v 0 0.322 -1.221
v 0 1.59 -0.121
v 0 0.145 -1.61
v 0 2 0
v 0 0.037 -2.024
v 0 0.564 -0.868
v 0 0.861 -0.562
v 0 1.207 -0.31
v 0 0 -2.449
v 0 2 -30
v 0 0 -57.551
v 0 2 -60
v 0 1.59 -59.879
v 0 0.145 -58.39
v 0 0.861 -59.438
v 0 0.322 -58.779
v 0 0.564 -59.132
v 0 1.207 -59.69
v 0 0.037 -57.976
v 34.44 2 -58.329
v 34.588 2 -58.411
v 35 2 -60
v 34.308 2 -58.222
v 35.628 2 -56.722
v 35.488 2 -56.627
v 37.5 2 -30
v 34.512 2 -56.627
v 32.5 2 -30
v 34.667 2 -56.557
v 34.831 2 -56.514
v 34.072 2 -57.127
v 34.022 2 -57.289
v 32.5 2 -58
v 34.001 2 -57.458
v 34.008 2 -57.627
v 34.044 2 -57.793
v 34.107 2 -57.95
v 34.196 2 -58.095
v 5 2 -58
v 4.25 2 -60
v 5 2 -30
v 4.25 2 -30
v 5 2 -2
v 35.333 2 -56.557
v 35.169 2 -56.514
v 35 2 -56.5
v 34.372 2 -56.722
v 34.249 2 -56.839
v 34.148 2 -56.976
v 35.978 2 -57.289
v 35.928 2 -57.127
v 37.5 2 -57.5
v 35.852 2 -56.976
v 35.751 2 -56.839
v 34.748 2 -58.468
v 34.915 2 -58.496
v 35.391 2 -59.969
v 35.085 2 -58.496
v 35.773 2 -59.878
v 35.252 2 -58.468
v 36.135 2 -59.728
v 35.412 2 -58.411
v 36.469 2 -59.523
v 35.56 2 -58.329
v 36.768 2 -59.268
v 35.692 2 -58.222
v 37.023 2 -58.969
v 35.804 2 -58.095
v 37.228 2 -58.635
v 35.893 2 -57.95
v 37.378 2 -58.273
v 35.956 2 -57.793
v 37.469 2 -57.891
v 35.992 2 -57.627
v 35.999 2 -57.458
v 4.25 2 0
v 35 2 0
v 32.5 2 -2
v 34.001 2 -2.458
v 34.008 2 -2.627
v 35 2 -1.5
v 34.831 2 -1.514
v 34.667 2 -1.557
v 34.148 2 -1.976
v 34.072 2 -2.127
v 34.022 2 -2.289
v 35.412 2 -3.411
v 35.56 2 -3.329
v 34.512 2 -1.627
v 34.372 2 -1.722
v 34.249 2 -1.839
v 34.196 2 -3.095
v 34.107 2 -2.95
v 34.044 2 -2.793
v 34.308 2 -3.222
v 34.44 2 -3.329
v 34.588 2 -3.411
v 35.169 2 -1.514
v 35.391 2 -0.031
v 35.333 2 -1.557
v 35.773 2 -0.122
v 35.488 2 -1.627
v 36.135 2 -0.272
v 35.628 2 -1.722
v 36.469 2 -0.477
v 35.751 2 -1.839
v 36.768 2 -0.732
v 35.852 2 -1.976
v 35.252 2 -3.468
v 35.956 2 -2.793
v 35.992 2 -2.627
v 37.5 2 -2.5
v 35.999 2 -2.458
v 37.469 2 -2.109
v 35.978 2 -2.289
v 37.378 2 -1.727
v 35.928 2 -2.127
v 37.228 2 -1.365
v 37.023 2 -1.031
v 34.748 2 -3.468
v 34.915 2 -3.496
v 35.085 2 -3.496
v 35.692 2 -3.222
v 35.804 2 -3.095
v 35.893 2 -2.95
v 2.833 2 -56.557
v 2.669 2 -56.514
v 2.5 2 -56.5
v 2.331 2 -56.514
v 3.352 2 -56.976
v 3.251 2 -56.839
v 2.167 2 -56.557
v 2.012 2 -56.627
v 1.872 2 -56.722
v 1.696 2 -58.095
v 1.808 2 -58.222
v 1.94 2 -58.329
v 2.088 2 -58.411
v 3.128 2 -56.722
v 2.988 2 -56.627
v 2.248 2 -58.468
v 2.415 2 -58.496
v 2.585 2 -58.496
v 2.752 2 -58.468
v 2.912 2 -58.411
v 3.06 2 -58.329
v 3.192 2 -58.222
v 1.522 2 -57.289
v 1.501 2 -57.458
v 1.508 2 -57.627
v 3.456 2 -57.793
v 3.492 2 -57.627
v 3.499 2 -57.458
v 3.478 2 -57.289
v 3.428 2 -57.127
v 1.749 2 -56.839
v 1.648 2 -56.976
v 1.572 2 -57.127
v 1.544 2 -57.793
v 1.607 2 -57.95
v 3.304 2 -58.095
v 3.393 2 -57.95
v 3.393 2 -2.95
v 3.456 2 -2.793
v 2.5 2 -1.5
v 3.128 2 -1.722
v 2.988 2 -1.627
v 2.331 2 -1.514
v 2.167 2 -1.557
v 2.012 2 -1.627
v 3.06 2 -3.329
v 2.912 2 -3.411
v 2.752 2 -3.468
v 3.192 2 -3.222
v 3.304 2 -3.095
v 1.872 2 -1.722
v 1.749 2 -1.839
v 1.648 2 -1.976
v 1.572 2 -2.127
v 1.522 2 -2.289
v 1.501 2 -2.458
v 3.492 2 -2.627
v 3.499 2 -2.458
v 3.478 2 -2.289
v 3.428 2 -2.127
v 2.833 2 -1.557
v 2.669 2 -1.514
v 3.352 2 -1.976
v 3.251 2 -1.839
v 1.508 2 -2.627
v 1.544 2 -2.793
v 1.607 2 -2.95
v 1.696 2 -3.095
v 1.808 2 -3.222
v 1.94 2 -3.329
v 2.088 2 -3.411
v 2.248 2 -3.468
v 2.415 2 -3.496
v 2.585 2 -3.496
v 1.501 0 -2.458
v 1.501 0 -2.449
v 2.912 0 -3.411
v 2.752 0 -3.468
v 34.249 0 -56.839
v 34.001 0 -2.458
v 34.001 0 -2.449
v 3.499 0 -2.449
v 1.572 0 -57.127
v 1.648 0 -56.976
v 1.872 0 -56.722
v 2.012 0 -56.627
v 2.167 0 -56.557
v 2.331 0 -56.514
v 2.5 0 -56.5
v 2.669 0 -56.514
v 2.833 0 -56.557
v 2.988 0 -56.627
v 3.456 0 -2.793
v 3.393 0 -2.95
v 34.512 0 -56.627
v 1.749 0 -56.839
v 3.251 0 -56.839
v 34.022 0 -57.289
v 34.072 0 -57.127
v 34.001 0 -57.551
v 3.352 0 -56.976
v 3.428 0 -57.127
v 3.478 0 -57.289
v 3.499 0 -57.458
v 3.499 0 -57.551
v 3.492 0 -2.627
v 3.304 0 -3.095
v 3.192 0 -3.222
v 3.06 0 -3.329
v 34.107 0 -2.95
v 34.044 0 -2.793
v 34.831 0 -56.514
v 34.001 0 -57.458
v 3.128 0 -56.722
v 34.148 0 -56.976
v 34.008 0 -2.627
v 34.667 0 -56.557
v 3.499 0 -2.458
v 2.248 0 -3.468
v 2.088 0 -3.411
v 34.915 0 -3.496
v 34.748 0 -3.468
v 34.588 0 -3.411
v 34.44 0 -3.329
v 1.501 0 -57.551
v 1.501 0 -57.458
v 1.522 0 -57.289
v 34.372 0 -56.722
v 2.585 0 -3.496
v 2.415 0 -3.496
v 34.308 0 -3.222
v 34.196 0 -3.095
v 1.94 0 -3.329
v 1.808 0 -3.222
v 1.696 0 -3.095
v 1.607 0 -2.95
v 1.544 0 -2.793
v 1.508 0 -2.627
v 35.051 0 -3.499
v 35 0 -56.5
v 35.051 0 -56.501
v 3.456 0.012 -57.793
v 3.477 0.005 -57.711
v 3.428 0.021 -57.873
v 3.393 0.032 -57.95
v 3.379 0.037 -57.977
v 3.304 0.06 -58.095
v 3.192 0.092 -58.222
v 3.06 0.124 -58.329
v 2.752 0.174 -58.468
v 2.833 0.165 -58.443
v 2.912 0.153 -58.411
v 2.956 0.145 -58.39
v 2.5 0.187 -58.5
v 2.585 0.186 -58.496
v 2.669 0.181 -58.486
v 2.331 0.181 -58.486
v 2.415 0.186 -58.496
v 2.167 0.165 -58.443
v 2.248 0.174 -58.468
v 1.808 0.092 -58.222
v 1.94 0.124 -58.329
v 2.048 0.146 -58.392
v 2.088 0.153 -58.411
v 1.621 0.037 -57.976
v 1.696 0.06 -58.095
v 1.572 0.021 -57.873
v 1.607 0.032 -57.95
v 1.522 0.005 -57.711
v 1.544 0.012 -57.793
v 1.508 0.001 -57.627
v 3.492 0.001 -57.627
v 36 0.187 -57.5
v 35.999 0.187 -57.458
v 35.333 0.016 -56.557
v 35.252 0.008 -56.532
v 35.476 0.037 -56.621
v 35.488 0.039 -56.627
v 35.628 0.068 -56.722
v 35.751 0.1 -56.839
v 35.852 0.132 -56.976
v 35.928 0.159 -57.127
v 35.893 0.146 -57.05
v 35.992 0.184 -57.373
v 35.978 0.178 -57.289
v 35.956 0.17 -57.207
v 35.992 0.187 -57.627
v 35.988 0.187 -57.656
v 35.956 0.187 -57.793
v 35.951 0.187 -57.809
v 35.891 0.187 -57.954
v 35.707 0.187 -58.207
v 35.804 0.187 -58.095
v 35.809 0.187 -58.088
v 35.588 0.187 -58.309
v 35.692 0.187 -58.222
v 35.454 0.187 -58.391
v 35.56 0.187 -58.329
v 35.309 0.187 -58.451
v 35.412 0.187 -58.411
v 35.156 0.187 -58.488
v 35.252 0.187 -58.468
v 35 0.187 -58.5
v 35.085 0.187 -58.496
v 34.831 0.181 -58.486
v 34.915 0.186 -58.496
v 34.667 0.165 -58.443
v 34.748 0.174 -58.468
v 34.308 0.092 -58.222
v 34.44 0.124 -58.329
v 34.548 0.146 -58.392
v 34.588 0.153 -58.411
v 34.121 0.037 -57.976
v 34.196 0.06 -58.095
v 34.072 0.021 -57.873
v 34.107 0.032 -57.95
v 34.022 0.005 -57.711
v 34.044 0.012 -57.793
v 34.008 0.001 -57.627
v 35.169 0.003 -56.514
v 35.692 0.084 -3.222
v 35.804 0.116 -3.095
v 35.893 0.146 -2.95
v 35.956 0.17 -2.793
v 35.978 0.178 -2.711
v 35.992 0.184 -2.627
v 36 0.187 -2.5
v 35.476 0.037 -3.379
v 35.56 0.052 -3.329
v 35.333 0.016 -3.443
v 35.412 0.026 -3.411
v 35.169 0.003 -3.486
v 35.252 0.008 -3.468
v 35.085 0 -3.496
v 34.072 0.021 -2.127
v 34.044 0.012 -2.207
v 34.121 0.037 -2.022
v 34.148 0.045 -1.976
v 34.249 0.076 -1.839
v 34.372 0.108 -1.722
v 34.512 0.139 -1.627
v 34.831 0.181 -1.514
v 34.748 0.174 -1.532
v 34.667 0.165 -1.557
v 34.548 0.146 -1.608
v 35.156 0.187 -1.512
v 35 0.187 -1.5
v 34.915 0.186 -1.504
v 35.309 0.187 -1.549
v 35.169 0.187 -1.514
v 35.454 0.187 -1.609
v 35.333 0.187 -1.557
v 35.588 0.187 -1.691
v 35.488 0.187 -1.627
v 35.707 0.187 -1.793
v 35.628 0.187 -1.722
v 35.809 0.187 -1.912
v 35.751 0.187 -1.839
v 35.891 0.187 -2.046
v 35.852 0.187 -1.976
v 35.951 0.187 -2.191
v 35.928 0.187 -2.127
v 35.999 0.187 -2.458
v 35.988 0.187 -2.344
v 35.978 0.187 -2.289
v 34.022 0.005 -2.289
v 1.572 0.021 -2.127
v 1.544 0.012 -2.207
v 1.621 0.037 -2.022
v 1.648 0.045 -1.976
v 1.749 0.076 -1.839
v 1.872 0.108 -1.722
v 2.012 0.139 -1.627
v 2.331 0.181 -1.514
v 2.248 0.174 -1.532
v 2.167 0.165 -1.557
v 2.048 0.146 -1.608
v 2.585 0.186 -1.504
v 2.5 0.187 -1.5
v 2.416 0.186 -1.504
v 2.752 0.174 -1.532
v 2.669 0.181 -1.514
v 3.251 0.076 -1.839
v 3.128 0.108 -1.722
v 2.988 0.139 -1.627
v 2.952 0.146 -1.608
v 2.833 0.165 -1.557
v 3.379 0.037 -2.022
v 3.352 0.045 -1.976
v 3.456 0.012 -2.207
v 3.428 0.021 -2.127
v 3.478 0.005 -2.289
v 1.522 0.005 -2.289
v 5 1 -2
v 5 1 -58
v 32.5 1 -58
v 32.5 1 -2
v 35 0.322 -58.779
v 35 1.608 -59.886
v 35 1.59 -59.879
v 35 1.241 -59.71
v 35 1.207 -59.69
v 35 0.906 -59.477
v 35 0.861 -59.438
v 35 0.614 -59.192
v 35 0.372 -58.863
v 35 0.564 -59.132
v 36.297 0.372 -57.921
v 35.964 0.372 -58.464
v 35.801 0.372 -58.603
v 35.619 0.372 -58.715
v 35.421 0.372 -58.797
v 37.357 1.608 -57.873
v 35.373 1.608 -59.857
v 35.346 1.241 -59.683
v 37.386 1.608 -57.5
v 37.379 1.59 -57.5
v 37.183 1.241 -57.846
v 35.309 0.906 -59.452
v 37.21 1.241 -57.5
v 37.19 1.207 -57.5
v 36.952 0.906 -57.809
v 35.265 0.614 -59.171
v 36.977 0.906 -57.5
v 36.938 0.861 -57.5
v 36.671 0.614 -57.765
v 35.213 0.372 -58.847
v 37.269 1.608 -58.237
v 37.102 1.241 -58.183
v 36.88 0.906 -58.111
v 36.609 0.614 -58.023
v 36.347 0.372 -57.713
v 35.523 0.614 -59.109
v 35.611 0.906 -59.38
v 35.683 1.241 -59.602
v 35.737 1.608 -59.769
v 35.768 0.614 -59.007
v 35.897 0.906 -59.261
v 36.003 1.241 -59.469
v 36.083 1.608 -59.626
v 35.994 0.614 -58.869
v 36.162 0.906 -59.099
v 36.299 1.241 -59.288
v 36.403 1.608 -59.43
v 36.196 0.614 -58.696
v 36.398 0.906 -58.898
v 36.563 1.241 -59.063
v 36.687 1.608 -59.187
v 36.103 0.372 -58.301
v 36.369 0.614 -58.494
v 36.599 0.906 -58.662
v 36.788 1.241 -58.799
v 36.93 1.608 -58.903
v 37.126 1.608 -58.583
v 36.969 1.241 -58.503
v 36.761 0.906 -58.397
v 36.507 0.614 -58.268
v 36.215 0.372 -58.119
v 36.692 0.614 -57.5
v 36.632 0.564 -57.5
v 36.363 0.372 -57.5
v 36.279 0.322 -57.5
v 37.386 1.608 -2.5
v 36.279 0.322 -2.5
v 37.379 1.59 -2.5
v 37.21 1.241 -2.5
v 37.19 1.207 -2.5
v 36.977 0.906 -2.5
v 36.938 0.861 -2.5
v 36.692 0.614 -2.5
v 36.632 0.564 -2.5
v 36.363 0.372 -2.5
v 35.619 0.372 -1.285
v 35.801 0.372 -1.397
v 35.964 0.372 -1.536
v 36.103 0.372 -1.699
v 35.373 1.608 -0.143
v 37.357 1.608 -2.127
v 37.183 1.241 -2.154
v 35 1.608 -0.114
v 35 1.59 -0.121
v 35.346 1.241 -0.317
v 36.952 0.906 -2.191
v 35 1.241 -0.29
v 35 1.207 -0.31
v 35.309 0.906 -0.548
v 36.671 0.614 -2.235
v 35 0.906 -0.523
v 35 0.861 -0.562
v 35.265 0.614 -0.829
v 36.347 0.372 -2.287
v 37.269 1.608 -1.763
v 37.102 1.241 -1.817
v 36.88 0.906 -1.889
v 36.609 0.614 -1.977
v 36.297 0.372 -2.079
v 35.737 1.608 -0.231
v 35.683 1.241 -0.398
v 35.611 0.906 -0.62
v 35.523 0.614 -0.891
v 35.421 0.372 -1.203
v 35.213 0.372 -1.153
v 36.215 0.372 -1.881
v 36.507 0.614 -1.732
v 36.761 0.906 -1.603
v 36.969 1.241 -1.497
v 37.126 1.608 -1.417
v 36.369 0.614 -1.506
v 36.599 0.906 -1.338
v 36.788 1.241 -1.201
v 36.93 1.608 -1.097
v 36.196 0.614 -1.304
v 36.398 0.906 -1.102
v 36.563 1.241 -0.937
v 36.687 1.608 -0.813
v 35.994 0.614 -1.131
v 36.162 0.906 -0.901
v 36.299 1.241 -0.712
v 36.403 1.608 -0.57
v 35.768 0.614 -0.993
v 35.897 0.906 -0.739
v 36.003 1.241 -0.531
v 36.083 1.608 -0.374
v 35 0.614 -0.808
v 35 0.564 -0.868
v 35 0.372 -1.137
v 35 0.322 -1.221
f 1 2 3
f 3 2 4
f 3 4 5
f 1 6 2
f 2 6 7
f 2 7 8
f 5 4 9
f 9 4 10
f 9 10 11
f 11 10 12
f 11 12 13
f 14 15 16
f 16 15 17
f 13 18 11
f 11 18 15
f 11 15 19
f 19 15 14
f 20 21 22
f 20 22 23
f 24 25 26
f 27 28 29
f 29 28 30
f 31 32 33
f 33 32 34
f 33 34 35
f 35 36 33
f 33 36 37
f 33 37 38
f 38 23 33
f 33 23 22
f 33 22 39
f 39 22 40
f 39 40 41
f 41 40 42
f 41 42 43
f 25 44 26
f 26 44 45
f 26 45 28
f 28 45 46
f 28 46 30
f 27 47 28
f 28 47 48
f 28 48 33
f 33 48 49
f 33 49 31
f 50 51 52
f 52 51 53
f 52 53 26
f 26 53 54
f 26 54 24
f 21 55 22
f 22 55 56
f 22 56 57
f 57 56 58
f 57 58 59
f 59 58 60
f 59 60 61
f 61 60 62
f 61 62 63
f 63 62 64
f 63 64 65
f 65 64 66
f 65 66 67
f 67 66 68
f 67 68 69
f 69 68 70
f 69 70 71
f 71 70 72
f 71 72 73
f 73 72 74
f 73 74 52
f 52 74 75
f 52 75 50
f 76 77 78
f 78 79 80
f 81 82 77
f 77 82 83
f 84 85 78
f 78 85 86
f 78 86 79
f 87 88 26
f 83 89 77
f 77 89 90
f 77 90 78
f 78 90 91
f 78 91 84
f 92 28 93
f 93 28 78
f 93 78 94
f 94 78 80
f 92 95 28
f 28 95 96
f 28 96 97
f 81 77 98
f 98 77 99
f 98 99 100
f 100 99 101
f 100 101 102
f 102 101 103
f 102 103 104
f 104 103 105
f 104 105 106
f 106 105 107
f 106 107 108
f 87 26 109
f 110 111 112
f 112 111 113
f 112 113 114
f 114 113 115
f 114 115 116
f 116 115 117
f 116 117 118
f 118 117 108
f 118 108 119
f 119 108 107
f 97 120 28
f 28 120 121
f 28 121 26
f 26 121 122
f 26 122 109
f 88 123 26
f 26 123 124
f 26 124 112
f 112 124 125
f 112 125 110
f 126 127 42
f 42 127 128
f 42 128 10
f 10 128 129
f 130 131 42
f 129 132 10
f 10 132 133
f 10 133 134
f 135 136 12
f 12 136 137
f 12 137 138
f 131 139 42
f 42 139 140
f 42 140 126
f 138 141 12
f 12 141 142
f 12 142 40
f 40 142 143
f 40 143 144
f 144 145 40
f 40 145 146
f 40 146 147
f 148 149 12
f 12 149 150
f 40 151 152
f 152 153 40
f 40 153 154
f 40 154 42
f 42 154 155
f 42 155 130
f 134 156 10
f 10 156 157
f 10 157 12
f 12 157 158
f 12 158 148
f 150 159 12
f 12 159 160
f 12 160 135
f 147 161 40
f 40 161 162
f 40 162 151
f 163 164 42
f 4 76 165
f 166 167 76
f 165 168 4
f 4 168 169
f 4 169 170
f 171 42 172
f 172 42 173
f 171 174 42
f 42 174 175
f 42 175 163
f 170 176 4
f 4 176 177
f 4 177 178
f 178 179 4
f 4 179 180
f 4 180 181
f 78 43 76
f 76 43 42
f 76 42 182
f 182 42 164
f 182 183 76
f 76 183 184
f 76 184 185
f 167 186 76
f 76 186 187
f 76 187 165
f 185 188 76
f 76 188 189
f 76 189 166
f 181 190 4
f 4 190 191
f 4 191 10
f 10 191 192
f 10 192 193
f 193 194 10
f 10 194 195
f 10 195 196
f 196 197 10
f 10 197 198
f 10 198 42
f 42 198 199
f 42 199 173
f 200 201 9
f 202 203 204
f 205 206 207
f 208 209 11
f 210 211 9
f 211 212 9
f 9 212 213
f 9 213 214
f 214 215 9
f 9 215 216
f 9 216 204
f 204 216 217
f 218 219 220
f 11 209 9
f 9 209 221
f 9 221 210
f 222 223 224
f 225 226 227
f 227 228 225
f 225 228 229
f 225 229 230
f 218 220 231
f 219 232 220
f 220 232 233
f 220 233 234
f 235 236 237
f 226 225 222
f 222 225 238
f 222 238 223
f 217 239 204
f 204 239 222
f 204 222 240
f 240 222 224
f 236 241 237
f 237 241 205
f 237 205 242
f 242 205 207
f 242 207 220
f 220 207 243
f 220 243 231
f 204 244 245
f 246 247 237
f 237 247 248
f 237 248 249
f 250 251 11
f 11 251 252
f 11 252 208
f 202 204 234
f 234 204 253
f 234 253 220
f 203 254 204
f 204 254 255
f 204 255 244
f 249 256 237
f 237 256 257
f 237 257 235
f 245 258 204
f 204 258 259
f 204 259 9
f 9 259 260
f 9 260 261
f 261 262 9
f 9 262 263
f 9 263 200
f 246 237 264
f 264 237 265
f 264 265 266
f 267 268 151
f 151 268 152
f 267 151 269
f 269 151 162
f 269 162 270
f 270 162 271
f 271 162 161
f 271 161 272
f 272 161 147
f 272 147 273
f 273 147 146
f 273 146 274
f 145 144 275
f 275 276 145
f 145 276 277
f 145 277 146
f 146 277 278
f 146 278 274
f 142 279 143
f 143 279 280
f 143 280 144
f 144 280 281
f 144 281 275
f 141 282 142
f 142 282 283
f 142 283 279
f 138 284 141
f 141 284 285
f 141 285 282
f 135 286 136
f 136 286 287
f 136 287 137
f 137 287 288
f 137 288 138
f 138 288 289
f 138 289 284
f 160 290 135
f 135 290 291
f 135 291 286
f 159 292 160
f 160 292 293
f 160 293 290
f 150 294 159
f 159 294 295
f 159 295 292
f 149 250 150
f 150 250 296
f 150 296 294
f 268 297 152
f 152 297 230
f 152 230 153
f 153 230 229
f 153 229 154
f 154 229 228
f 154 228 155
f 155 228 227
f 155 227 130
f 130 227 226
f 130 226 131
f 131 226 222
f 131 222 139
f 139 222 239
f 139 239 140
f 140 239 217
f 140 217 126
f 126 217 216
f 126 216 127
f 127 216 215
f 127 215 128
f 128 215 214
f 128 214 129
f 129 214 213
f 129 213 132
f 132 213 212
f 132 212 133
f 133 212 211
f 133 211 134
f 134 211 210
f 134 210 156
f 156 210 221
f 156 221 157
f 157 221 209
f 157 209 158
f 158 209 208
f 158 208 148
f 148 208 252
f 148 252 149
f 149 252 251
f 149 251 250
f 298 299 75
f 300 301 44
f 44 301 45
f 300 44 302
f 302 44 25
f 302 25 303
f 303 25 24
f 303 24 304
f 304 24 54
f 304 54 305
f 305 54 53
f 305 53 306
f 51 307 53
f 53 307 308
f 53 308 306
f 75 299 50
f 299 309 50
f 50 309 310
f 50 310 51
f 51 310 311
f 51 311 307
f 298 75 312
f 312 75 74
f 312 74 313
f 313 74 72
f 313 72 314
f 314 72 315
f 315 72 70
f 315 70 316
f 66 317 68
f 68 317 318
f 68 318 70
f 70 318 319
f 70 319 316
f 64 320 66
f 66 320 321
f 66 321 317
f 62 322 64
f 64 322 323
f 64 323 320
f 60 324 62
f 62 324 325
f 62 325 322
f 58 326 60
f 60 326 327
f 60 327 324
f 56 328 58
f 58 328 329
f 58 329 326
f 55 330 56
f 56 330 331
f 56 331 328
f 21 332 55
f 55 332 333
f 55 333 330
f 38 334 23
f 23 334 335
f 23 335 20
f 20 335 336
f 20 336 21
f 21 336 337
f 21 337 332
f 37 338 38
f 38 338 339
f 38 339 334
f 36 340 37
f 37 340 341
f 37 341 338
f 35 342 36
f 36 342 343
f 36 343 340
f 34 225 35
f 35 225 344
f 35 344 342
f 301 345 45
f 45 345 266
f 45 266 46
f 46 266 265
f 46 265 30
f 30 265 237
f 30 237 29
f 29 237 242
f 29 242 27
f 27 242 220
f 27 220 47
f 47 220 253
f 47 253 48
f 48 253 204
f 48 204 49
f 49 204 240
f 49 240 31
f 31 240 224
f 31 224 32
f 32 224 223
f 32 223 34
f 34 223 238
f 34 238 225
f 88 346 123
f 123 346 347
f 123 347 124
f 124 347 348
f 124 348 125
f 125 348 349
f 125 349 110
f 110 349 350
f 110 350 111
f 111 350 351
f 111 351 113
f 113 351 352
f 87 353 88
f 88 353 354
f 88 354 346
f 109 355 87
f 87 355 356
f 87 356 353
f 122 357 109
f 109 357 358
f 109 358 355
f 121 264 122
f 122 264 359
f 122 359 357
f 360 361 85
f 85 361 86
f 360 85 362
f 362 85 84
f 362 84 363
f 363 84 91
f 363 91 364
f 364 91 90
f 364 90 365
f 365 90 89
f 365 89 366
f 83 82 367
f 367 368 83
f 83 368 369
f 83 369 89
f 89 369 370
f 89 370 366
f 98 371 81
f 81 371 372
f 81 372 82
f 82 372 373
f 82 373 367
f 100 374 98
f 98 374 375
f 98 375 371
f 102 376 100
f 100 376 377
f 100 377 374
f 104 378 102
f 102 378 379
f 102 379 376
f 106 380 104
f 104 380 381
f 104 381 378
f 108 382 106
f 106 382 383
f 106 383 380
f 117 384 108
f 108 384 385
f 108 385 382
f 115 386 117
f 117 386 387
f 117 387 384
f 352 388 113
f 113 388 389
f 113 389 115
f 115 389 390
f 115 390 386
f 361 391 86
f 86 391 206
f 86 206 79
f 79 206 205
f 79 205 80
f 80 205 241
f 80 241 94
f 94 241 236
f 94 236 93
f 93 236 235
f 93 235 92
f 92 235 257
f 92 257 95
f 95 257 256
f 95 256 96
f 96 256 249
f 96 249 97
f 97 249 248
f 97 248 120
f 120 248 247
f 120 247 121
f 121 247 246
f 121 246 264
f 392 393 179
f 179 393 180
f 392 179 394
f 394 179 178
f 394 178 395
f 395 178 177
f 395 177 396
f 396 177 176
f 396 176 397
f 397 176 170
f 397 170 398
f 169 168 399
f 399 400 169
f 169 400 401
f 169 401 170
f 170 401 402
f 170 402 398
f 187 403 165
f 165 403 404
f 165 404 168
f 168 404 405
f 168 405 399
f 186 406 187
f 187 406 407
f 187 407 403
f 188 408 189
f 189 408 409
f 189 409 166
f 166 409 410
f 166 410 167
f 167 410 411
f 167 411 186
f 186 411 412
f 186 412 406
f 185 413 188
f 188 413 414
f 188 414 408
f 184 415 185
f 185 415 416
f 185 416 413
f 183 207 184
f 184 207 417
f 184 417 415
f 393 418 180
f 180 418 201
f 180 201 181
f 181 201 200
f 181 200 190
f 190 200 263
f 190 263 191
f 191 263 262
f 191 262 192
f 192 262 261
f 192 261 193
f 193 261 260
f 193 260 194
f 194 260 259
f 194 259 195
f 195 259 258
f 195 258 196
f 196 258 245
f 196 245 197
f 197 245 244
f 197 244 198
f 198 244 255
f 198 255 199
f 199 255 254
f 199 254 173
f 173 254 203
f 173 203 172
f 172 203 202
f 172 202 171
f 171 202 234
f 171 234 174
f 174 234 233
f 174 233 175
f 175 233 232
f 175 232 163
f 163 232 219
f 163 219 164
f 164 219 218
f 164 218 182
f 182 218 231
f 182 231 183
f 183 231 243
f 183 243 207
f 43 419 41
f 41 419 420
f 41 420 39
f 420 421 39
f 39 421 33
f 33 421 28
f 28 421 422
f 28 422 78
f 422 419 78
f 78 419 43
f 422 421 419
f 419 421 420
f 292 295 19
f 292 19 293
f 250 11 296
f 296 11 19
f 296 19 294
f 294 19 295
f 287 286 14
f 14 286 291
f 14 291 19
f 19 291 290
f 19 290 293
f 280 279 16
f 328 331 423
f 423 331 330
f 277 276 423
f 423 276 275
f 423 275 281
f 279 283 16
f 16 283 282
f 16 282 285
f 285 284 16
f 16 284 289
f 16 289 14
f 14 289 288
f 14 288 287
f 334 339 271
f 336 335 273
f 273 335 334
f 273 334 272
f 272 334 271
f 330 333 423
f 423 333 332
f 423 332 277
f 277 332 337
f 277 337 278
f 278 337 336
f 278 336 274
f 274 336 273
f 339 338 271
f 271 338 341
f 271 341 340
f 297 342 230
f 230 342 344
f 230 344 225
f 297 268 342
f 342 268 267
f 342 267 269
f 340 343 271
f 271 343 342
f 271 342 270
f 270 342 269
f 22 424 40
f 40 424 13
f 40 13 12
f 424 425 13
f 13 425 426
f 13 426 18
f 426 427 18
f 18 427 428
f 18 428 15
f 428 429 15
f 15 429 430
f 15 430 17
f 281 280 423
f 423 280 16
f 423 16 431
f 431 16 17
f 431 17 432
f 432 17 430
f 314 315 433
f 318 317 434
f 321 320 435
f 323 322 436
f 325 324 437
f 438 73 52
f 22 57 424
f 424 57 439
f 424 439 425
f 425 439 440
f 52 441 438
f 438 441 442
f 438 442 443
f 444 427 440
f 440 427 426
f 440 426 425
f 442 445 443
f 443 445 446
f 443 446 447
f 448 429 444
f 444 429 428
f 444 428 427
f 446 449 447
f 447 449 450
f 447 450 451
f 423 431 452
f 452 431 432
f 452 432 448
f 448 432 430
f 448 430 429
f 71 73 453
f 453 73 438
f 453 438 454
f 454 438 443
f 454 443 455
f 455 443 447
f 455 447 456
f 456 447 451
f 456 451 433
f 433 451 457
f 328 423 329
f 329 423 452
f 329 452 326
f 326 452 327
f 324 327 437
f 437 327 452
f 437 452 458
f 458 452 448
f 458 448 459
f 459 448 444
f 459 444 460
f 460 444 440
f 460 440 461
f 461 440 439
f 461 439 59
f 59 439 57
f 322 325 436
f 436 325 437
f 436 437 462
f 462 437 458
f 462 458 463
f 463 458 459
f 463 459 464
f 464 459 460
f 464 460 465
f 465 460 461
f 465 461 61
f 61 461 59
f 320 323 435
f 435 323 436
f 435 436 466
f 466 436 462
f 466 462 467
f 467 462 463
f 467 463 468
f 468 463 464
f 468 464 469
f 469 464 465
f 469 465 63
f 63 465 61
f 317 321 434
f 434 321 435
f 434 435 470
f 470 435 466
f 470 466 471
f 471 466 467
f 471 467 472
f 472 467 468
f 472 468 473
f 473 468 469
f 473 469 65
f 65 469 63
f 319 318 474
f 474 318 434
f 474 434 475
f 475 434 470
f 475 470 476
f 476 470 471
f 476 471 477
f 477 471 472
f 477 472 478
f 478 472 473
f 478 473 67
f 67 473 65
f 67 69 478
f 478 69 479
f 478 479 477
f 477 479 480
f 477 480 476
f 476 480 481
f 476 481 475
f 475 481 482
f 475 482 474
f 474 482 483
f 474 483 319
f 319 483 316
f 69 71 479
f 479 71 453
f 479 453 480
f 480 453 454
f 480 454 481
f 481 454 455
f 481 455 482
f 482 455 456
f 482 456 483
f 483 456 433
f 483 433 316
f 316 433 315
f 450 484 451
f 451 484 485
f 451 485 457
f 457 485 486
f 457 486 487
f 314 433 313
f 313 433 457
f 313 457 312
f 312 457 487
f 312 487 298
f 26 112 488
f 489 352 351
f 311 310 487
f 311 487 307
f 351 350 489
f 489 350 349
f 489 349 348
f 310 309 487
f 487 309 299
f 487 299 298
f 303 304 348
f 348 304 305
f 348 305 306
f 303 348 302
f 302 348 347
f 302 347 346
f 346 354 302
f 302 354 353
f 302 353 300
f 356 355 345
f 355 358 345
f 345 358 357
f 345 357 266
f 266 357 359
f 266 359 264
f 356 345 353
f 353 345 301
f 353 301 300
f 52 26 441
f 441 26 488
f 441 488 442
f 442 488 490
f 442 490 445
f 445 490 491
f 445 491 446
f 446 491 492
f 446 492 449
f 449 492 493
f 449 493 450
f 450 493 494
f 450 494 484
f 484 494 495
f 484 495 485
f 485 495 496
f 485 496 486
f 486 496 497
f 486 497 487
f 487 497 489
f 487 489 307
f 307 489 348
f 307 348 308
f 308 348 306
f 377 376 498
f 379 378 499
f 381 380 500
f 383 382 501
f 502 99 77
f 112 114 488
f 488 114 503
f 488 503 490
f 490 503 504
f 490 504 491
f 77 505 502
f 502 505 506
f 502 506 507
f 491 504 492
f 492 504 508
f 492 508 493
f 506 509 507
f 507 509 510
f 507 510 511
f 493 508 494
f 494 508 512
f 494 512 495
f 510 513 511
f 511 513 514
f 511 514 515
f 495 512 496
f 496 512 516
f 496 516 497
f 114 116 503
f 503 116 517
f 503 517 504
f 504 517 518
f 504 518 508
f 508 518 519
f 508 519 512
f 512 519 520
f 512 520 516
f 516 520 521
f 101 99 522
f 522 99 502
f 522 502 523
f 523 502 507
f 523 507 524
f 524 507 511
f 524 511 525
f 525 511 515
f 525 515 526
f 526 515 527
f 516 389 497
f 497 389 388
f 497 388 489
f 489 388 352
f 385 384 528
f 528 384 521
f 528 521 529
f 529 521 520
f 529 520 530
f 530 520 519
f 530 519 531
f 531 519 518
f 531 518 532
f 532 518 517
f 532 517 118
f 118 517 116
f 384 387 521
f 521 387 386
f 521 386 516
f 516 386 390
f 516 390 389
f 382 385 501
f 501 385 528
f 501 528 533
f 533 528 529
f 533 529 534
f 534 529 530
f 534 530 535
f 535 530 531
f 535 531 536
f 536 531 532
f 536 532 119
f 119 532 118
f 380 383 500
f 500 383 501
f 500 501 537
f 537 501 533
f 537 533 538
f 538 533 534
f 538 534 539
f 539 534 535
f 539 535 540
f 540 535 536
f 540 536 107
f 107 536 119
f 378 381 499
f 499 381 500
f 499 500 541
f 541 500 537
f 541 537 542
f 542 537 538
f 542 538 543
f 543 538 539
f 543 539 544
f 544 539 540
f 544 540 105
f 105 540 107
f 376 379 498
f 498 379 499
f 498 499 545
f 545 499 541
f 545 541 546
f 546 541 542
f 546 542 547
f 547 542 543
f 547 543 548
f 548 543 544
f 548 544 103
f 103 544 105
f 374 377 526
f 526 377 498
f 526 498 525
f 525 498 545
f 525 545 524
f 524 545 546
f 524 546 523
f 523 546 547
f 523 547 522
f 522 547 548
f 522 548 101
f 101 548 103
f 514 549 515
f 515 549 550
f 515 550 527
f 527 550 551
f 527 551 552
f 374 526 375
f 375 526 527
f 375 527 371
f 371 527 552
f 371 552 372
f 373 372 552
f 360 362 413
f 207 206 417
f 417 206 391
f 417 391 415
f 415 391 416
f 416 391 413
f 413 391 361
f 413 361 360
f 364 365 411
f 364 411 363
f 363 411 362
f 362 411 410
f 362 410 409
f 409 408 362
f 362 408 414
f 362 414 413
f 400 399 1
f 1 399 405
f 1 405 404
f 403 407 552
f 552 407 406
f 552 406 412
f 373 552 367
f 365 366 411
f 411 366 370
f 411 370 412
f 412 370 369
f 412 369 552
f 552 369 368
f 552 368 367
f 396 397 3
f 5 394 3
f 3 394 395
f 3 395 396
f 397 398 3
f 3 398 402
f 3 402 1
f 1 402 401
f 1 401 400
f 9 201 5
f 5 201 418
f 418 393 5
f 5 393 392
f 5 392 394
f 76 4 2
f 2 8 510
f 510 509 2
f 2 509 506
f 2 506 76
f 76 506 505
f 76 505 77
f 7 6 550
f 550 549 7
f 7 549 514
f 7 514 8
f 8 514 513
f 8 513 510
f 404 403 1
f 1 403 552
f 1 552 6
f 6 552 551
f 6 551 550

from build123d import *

# Parameters (mm, degrees)
SKETCH1_W           = 37.5
SKETCH1_H           = 60
BOSS_EXTRUDE1_DEPTH = 2
SKETCH2_R           = 1
CUT_EXTRUDE1_DEPTH  = 71.783119457
SKETCH3_W           = 27.5
SKETCH3_H           = 56
CUT_EXTRUDE2_DEPTH  = 1
FILLET1_R           = 2.5
FILLET2_R           = 2.5


with BuildPart() as part:
    # Sketch1 → Boss-Extrude1 (new body)
    with BuildSketch(Plane(origin=(0, 0, 0), x_dir=(1, 0, 0), z_dir=(0, 1, 0))):
        with Locations((18.75, 30)):
            Rectangle(SKETCH1_W, SKETCH1_H)
    extrude(amount=BOSS_EXTRUDE1_DEPTH)

    # Sketch2 → Cut-Extrude1 (cut, through all)
    with BuildSketch(Plane(origin=(0, 2, 0), x_dir=(1, 0, 0), z_dir=(0, 1, 0))):
        with Locations(Location((2.5, 57.5, 0), (0, 0, 270))):
            Circle(SKETCH2_R)
        with Locations(Location((35, 57.5, 0), (0, 0, 270))):
            Circle(SKETCH2_R)
        with Locations(Location((35, 2.5, 0), (0, 0, 270))):
            Circle(SKETCH2_R)
        with Locations(Location((2.5, 2.5, 0), (0, 0, 270))):
            Circle(SKETCH2_R)
    extrude(amount=-CUT_EXTRUDE1_DEPTH, mode=Mode.SUBTRACT)

    # Sketch3 → Cut-Extrude2 (cut)
    with BuildSketch(Plane(origin=(0, 2, 0), x_dir=(1, 0, 0), z_dir=(0, 1, 0))):
        with Locations((18.75, 30)):
            Rectangle(SKETCH3_W, SKETCH3_H)
    extrude(amount=-CUT_EXTRUDE2_DEPTH, mode=Mode.SUBTRACT)

    # Fillet1
    fillet1_edges = [part.edges().sort_by_distance(p)[0] for p in [
        (37.5, 1, -60),
        (37.5, 1, 0),
    ]]
    fillet(fillet1_edges, radius=FILLET1_R)

    # Fillet2
    # the kernel refuses this fillet: 2.5 mm, written as the material it takes off along each edge
    with BuildSketch(Plane(origin=(35, 0, -60), x_dir=(0, 0, 1), z_dir=(-1, 0, 0))) as fillet2_piece_1:
        with BuildLine():
            CenterArc((2.449489743, 2.5), FILLET2_R, 191.536959033, 78.463040967)
            Line((0, 2), (0, 0))
            Line((0, 0), (2.449489743, 0))
        make_face()
    extrude(amount=41.123724357, mode=Mode.SUBTRACT)
    with BuildSketch(Plane(origin=(37.5, 0, -2.5), x_dir=(-1, 0, 0), z_dir=(0, 0, -1))) as fillet2_piece_2:
        with BuildLine():
            CenterArc((2.449489743, 2.5), FILLET2_R, 191.536959033, 78.463040967)
            Line((0, 2), (0, 0))
            Line((0, 0), (2.449489743, 0))
        make_face()
    extrude(amount=55, mode=Mode.SUBTRACT)
    with BuildSketch(Plane(origin=(-6.123724357, 0, 0), x_dir=(0, 1.0, -1.574296248917966e-12), z_dir=(1, 0, 0))) as fillet2_piece_3:
        with BuildLine():
            CenterArc((2.5, -2.449489743), FILLET2_R, 101.536959033, 78.463040967)
            Line((0, -2.449489743), (0, 0))
            Line((0, 0), (2, 0))
        make_face()
    extrude(amount=41.123724357, mode=Mode.SUBTRACT)
    with BuildSketch(Plane(origin=(35, 0, -2.5), x_dir=(0, 0, 1), z_dir=(-1, 0, 0))) as fillet2_piece_4:
        with BuildLine():
            CenterArc((0.050510257, 2.5), FILLET2_R, 270, 78.463040967)
            Line((2.5, 2), (2.5, 0))
            Line((2.5, 0), (0.050510257, 0))
        make_face()
    revolve(axis=Axis((35, 0, -2.5), (0, 1, 0)), revolution_arc=90, mode=Mode.SUBTRACT)
    with BuildSketch(Plane(origin=(35, 0, -57.5), x_dir=(1, 0, 0), z_dir=(0, 0, 1))) as fillet2_piece_5:
        with BuildLine():
            CenterArc((0.050510257, 2.5), FILLET2_R, 270, 78.463040967)
            Line((2.5, 2), (2.5, 0))
            Line((2.5, 0), (0.050510257, 0))
        make_face()
    revolve(axis=Axis((35, 0, -57.5), (0, 1, 0)), revolution_arc=90, mode=Mode.SUBTRACT)


solid = part.part
